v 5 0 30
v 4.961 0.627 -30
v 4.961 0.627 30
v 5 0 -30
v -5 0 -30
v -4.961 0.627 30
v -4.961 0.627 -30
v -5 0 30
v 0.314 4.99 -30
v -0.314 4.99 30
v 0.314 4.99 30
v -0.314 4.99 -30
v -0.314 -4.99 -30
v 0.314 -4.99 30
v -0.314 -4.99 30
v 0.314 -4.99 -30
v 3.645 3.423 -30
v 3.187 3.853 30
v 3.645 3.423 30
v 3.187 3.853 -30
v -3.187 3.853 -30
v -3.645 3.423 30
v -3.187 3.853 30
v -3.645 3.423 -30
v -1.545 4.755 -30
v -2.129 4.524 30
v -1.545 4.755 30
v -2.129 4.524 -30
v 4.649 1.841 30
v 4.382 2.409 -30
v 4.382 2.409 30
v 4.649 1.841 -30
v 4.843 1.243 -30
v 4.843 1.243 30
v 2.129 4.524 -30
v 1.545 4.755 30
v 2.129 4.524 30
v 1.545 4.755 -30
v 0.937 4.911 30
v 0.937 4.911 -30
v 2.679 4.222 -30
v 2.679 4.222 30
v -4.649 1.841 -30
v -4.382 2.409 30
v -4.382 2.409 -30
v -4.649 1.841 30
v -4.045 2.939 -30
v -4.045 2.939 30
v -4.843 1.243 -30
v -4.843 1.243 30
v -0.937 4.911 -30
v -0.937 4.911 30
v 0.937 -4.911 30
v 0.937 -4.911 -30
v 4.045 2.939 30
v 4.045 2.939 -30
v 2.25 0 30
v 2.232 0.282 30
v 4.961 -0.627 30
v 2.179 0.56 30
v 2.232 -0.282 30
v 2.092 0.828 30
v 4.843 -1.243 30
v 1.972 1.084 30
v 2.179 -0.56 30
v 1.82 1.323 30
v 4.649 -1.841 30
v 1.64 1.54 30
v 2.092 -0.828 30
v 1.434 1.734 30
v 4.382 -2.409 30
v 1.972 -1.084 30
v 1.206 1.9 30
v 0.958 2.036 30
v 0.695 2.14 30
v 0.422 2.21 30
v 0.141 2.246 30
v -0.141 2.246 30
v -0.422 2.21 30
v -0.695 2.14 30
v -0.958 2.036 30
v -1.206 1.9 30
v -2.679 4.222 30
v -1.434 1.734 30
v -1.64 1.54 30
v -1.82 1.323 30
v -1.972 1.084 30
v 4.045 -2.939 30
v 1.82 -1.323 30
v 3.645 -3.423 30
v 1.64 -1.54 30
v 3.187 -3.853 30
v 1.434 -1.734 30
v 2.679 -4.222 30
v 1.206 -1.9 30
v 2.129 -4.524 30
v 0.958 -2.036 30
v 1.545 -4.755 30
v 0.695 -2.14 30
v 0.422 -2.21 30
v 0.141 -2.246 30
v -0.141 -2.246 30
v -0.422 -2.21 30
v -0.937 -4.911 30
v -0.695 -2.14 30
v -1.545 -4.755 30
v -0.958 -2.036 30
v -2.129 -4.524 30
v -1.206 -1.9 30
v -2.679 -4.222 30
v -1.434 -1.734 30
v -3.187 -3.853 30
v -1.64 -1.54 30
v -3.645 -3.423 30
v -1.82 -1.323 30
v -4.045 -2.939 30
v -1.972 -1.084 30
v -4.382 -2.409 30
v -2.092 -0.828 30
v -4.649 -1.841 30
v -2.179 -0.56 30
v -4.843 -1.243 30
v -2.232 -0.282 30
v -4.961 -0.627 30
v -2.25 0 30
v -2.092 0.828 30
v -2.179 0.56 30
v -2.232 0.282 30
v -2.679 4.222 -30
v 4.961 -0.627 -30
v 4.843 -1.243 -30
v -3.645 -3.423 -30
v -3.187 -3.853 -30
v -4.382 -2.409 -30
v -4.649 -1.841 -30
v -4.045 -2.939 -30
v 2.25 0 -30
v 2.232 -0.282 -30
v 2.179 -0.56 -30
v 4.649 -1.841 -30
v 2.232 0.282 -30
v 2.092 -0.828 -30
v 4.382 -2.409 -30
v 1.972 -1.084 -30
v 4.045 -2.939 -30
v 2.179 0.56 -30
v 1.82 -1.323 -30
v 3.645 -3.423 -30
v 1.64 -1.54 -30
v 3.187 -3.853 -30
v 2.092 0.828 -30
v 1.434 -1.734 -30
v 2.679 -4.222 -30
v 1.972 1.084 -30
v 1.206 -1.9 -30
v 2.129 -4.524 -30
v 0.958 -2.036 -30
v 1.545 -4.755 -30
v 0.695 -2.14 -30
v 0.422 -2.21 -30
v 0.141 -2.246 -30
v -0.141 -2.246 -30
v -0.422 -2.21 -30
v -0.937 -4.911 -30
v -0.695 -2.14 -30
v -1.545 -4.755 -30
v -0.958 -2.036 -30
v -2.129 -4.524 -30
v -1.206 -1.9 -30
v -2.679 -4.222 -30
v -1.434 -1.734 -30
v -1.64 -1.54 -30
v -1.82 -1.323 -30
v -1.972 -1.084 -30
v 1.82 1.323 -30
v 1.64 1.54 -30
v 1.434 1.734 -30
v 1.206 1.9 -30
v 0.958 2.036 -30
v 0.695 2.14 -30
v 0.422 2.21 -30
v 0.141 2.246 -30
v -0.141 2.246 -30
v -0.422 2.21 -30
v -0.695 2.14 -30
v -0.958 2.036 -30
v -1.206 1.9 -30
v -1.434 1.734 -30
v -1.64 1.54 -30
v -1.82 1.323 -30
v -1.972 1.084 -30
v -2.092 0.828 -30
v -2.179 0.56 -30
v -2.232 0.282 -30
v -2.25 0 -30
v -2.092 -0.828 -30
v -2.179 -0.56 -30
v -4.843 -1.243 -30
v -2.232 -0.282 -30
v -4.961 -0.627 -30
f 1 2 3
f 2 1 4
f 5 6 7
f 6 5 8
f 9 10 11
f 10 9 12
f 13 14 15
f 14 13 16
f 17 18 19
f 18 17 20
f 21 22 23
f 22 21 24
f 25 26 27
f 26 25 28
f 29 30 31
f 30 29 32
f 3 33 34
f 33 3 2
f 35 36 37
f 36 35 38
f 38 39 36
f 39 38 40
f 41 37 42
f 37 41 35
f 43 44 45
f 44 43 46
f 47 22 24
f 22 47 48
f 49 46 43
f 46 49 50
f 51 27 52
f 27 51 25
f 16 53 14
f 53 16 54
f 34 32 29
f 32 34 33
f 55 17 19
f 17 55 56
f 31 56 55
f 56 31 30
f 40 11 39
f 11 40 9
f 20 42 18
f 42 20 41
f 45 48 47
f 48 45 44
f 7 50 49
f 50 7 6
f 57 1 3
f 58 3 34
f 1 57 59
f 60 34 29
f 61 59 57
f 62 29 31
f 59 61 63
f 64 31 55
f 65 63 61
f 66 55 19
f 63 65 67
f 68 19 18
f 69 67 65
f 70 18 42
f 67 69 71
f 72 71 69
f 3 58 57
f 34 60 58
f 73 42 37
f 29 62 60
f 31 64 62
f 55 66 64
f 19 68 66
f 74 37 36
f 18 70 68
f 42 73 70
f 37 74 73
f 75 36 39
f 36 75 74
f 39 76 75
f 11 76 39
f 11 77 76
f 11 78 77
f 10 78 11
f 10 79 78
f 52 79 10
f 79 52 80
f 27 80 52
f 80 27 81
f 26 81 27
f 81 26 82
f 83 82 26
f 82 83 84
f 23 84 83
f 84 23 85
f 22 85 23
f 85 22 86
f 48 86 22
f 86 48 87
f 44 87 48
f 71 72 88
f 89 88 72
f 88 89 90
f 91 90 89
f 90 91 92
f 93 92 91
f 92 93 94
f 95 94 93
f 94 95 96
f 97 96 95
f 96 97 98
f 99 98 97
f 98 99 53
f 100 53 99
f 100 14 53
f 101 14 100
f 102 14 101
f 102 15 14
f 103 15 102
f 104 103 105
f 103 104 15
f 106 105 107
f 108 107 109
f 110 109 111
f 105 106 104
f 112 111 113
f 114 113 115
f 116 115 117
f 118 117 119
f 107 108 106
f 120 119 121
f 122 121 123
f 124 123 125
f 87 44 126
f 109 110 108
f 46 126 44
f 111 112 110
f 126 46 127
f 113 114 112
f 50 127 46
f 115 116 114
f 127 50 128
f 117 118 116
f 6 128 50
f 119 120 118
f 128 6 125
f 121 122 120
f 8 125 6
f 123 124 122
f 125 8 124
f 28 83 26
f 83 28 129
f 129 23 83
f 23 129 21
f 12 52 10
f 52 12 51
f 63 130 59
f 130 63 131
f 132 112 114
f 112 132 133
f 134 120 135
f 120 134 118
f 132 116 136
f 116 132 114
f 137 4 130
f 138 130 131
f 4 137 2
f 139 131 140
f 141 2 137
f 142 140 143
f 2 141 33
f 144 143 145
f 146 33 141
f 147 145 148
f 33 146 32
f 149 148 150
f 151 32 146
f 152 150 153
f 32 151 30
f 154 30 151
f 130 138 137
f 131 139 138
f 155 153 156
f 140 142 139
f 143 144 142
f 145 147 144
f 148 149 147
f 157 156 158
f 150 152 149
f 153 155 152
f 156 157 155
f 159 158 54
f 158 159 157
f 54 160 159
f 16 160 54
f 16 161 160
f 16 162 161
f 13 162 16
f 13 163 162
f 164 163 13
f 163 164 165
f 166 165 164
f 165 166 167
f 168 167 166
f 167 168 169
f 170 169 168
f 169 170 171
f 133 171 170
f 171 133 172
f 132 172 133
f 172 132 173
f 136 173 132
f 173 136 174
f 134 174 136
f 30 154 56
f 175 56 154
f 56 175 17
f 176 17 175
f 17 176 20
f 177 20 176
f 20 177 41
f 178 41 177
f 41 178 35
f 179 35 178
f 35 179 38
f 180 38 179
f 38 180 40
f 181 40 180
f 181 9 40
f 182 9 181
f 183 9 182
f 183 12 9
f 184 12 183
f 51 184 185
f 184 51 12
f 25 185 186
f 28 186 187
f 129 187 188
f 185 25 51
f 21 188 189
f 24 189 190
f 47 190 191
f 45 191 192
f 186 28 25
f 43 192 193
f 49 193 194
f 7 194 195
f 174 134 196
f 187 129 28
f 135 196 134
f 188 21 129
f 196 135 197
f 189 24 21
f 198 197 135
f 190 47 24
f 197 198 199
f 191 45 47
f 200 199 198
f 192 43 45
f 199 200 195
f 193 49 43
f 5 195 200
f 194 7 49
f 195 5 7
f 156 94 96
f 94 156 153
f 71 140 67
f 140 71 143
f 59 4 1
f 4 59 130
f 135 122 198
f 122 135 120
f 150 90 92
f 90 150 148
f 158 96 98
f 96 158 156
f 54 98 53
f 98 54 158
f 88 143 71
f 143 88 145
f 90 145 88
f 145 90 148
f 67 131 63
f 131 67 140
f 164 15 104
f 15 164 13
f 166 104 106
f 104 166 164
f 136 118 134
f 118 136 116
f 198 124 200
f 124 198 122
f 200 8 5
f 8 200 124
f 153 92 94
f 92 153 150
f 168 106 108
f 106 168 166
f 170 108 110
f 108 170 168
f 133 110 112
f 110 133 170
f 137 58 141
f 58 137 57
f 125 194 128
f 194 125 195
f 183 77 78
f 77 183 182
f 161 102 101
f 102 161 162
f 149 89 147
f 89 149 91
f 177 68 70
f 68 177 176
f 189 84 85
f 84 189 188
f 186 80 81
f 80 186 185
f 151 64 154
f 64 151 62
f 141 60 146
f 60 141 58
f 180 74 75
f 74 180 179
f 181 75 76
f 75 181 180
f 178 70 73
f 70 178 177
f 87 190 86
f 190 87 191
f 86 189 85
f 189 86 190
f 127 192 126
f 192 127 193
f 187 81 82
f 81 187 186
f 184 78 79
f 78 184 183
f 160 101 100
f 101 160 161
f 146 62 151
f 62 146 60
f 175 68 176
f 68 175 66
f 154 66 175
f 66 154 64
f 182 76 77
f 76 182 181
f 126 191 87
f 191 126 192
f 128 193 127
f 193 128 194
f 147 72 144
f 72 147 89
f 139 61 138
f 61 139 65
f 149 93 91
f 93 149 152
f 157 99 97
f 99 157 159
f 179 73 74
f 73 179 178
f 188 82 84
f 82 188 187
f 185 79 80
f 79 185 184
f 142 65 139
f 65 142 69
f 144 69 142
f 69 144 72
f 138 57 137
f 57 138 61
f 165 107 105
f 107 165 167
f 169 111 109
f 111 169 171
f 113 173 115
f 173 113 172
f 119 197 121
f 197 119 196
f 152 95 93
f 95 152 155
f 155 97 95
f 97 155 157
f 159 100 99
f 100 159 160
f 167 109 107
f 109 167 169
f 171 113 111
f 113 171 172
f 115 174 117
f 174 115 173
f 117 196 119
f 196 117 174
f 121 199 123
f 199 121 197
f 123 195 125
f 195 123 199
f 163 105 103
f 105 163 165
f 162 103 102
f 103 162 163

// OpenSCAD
$fn = 50;


difference() {
	union() {
		translate(v = [0, 0, -30.0000000000]) {
			cylinder(h = 60, r = 5.0000000000);
		}
	}
	union() {
		translate(v = [0, 0, -100.0000000000]) {
			cylinder(h = 200, r = 2.2500000000);
		}
	}
}
